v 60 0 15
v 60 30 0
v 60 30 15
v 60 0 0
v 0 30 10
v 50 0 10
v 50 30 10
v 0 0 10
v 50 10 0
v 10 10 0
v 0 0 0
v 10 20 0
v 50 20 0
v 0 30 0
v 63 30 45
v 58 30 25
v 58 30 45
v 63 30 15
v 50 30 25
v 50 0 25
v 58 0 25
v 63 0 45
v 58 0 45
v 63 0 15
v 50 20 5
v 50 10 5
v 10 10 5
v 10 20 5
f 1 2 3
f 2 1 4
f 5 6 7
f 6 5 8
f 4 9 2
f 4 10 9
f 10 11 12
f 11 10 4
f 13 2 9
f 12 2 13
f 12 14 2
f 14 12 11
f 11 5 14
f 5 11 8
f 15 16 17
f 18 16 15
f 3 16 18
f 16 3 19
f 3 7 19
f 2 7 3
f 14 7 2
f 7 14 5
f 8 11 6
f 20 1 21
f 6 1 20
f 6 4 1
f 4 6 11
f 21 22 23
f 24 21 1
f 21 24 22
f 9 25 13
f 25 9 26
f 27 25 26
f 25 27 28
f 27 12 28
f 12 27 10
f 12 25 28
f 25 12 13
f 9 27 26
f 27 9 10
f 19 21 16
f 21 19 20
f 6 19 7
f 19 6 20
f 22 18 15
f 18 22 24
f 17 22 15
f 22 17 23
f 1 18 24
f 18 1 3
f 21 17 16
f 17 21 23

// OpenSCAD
// Base block
module base_block() {
    difference() {
        // Main rectangular block
        cube([60, 30, 10], center = false);
        // Recessed groove along the length of the base block
        translate([10, 10, 0])
            cube([40, 10, 5], center = false);
    }
    // Raised section with increased height
    translate([50, 0, 10])
        cube([10, 30, 15], center = false); // Increased height from 10 to 15
}

// Vertical support
module vertical_support() {
    // Repositioned closer to the edge of the base block and reduced thickness
    translate([58, 0, 15]) { // Moved closer to the edge
        cube([5, 30, 30], center = false); // Reduced thickness from 10 to 5
    }
}

// Angled connector
module angled_connector() {
    // Triangular angled connector connecting vertical support to base block
    translate([50, 0, 10]) {
        polyhedron(
            points = [
                [0, 0, 0], [10, 0, 0], [10, 30, 0], [0, 30, 0], // Base rectangle
                [0, 0, 15], [10, 0, 15], [5, 30, 15]  // Top points forming a triangular shape
            ],
            faces = [
                [0, 1, 5, 4], [1, 2, 6, 5], [2, 3, 6], [3, 0, 4], // Side faces
                [4, 5, 6], // Top triangular face
                [0, 1, 2, 3]  // Bottom face
            ]
        );
    }
}

// Flat plate
module flat_plate() {
    // Thin flat plate covering the recessed groove
    translate([10, 10, 5]) {
        cube([40, 10, 1], center = false);
    }
}

// Assembly
module assembly() {
    base_block();
    vertical_support();
    angled_connector();
    flat_plate();
}

// Render the assembly
assembly();
